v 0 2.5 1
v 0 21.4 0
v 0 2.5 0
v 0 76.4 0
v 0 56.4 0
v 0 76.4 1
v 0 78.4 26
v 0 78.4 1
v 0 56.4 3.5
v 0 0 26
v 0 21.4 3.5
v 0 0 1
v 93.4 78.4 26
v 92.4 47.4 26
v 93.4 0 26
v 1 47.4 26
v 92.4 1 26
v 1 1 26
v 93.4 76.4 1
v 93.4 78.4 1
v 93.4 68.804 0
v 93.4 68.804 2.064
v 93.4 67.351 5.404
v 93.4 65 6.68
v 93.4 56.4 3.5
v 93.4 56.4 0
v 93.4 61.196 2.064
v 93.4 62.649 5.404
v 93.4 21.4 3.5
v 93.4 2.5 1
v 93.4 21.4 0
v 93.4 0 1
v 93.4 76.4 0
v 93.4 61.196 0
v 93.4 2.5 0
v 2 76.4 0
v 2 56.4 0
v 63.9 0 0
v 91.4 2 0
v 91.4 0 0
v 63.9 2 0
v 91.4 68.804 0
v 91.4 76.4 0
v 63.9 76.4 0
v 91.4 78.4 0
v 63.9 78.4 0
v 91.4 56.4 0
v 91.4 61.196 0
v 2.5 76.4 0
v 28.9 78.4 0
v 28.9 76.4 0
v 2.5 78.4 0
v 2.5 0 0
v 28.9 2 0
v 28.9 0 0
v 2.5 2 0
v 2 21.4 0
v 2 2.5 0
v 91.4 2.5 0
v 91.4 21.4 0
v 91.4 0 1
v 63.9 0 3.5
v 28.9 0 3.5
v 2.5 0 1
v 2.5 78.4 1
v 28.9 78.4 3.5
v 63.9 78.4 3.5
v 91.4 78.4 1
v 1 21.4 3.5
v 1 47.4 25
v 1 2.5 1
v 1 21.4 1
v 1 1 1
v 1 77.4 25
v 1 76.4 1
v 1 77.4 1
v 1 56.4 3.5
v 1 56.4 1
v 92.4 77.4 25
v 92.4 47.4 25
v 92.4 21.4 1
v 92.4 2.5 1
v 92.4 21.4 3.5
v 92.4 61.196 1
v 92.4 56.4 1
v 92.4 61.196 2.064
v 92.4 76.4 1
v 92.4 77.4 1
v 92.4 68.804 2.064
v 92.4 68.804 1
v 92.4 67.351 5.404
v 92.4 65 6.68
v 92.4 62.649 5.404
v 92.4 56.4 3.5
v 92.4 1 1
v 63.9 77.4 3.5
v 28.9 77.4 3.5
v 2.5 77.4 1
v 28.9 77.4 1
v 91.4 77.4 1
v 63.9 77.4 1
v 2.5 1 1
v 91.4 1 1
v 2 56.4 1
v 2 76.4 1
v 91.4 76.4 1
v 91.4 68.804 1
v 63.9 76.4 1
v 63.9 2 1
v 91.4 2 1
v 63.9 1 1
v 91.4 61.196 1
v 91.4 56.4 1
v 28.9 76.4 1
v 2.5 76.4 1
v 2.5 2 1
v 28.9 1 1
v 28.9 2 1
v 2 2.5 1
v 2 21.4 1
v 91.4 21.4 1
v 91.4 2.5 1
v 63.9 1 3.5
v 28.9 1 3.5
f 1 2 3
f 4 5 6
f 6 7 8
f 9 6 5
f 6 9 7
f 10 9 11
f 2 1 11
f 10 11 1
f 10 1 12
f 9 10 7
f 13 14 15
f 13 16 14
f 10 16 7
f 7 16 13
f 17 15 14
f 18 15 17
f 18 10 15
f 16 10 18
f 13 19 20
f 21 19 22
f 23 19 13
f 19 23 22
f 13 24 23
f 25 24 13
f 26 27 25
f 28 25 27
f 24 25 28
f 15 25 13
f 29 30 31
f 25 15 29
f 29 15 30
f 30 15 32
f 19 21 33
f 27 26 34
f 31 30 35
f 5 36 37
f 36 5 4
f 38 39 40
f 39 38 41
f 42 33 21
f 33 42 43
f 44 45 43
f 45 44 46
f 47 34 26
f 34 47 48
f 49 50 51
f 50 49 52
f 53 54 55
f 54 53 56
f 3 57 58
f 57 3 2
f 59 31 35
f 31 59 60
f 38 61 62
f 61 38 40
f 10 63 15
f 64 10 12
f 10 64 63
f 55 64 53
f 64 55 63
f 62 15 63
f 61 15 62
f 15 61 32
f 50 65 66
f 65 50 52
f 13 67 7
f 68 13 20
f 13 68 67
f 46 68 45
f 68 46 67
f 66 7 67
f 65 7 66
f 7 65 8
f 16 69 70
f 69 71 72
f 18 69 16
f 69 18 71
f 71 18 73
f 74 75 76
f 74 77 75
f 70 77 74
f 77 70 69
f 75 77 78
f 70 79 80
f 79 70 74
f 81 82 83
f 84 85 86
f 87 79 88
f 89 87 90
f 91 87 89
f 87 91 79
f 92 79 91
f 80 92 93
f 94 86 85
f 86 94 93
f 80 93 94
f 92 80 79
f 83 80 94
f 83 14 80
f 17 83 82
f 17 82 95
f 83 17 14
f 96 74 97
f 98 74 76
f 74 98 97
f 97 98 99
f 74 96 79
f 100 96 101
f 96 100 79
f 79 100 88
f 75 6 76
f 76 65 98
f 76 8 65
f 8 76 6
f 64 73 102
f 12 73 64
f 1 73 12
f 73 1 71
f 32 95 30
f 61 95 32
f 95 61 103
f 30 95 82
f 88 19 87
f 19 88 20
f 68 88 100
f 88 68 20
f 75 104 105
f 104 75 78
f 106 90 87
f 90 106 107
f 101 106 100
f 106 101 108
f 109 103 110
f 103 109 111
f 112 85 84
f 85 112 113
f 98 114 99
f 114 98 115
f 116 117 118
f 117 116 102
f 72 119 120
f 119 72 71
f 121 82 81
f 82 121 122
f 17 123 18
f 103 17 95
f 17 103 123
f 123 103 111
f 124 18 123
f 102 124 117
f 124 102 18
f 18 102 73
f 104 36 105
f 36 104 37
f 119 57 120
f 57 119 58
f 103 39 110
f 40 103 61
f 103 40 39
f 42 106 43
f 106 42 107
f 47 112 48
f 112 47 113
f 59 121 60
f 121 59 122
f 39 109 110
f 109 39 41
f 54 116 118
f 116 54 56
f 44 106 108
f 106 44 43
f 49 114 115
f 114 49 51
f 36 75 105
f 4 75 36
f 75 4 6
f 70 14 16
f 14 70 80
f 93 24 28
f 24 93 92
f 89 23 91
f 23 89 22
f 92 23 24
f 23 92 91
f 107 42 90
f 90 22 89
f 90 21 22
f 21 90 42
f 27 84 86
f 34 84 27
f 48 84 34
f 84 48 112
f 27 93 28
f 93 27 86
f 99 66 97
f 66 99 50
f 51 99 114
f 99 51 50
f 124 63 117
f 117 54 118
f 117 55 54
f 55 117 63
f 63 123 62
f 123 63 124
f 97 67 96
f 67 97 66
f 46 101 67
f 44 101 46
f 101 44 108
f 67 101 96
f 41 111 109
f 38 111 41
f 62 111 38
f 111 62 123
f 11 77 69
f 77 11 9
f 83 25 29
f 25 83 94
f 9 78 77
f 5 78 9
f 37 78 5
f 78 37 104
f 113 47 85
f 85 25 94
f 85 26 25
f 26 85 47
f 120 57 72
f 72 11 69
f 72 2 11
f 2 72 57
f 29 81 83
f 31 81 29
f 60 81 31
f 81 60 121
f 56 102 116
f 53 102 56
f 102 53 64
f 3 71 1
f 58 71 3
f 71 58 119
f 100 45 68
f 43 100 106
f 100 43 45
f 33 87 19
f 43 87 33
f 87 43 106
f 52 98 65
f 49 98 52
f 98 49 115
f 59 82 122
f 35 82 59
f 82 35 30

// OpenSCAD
$fn=10;

//base();
cover();

module post() {
    translate([5,10,1]) {
        cylinder(h=8, d2=2.2, d1=4);
        cylinder(h=9, d=2.2);
    }
}

w=90;
d=75;

module base() {
    
    difference() {
        union() {
            cube([w,d,2]);
            post();
            translate([0,59,0]) post();
            translate([79,0,0]) post();
            
            translate([(w-35)/2,-10, 0]) cube([35,10*2+d,2]);
        }
        
        //translate([-9, 17.5+5, 0]) cube([7,25,2]);
        //translate([92, 17.5+5, 0]) cube([7,25,2]);
        translate([(w-35)/2+5,-7, 0]) cube([25,7,2]);
        translate([(w-35)/2+5,d, 0]) cube([25,7,2]);
    }
}

h=25;
module cover() {
    diff=1.4;
    d=d+diff;
    w=w+diff;
    difference() {
        cube([w+2,d+2,h+1]);
        // body cutout:
        translate([1,1,1]) cube([w,d,h-1]);
        // cutout for base:
        translate([2,2,0]) cube([w-2,d-2,2]);
        // cutout for top:
        translate([1,1,3]) cube([w,d-30,h-1]);
        // cord hole:
        scale([1,1,1.67]) translate([90,65,0]) rotate([0,90,0]) cylinder(d=8, h=10);
        // Notches for the base:
        translate([(w-35)/2+diff/2,-10+diff/2, 0]) cube([35,10*2+d,3.5]);
        translate([-10+diff/2, (d-35)/2+diff/2, 0]) cube([10*2+w,35,3.5]);
        
        // Cutout for tension fit:
        cube([2.5,2.5,1]);
        translate([w,d]) cube([2.5,2.5,1]);
        translate([0,d]) cube([2.5,2.5,1]);
        translate([w,0]) cube([2.5,2.5,1]);
        
    }
}
